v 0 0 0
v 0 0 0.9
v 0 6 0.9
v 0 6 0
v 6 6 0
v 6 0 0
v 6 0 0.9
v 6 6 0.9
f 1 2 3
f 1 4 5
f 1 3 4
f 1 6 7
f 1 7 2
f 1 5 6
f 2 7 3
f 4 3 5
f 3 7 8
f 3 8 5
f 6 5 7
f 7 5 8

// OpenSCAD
/* Warning, this is a very basic generator with a lot of approximation 
input data : [VQFN, QJA, 6x6x0.9mm, 32, , A, C04-01280A]
generated by com.zoubworld.electronics.cad.model3d.Basic
Date : Sun Feb 15 10:50:49 CET 2026
*/

//body
color("black")
translate([0,0,0])
cube([6.0,6.0,0.9], center=false);
